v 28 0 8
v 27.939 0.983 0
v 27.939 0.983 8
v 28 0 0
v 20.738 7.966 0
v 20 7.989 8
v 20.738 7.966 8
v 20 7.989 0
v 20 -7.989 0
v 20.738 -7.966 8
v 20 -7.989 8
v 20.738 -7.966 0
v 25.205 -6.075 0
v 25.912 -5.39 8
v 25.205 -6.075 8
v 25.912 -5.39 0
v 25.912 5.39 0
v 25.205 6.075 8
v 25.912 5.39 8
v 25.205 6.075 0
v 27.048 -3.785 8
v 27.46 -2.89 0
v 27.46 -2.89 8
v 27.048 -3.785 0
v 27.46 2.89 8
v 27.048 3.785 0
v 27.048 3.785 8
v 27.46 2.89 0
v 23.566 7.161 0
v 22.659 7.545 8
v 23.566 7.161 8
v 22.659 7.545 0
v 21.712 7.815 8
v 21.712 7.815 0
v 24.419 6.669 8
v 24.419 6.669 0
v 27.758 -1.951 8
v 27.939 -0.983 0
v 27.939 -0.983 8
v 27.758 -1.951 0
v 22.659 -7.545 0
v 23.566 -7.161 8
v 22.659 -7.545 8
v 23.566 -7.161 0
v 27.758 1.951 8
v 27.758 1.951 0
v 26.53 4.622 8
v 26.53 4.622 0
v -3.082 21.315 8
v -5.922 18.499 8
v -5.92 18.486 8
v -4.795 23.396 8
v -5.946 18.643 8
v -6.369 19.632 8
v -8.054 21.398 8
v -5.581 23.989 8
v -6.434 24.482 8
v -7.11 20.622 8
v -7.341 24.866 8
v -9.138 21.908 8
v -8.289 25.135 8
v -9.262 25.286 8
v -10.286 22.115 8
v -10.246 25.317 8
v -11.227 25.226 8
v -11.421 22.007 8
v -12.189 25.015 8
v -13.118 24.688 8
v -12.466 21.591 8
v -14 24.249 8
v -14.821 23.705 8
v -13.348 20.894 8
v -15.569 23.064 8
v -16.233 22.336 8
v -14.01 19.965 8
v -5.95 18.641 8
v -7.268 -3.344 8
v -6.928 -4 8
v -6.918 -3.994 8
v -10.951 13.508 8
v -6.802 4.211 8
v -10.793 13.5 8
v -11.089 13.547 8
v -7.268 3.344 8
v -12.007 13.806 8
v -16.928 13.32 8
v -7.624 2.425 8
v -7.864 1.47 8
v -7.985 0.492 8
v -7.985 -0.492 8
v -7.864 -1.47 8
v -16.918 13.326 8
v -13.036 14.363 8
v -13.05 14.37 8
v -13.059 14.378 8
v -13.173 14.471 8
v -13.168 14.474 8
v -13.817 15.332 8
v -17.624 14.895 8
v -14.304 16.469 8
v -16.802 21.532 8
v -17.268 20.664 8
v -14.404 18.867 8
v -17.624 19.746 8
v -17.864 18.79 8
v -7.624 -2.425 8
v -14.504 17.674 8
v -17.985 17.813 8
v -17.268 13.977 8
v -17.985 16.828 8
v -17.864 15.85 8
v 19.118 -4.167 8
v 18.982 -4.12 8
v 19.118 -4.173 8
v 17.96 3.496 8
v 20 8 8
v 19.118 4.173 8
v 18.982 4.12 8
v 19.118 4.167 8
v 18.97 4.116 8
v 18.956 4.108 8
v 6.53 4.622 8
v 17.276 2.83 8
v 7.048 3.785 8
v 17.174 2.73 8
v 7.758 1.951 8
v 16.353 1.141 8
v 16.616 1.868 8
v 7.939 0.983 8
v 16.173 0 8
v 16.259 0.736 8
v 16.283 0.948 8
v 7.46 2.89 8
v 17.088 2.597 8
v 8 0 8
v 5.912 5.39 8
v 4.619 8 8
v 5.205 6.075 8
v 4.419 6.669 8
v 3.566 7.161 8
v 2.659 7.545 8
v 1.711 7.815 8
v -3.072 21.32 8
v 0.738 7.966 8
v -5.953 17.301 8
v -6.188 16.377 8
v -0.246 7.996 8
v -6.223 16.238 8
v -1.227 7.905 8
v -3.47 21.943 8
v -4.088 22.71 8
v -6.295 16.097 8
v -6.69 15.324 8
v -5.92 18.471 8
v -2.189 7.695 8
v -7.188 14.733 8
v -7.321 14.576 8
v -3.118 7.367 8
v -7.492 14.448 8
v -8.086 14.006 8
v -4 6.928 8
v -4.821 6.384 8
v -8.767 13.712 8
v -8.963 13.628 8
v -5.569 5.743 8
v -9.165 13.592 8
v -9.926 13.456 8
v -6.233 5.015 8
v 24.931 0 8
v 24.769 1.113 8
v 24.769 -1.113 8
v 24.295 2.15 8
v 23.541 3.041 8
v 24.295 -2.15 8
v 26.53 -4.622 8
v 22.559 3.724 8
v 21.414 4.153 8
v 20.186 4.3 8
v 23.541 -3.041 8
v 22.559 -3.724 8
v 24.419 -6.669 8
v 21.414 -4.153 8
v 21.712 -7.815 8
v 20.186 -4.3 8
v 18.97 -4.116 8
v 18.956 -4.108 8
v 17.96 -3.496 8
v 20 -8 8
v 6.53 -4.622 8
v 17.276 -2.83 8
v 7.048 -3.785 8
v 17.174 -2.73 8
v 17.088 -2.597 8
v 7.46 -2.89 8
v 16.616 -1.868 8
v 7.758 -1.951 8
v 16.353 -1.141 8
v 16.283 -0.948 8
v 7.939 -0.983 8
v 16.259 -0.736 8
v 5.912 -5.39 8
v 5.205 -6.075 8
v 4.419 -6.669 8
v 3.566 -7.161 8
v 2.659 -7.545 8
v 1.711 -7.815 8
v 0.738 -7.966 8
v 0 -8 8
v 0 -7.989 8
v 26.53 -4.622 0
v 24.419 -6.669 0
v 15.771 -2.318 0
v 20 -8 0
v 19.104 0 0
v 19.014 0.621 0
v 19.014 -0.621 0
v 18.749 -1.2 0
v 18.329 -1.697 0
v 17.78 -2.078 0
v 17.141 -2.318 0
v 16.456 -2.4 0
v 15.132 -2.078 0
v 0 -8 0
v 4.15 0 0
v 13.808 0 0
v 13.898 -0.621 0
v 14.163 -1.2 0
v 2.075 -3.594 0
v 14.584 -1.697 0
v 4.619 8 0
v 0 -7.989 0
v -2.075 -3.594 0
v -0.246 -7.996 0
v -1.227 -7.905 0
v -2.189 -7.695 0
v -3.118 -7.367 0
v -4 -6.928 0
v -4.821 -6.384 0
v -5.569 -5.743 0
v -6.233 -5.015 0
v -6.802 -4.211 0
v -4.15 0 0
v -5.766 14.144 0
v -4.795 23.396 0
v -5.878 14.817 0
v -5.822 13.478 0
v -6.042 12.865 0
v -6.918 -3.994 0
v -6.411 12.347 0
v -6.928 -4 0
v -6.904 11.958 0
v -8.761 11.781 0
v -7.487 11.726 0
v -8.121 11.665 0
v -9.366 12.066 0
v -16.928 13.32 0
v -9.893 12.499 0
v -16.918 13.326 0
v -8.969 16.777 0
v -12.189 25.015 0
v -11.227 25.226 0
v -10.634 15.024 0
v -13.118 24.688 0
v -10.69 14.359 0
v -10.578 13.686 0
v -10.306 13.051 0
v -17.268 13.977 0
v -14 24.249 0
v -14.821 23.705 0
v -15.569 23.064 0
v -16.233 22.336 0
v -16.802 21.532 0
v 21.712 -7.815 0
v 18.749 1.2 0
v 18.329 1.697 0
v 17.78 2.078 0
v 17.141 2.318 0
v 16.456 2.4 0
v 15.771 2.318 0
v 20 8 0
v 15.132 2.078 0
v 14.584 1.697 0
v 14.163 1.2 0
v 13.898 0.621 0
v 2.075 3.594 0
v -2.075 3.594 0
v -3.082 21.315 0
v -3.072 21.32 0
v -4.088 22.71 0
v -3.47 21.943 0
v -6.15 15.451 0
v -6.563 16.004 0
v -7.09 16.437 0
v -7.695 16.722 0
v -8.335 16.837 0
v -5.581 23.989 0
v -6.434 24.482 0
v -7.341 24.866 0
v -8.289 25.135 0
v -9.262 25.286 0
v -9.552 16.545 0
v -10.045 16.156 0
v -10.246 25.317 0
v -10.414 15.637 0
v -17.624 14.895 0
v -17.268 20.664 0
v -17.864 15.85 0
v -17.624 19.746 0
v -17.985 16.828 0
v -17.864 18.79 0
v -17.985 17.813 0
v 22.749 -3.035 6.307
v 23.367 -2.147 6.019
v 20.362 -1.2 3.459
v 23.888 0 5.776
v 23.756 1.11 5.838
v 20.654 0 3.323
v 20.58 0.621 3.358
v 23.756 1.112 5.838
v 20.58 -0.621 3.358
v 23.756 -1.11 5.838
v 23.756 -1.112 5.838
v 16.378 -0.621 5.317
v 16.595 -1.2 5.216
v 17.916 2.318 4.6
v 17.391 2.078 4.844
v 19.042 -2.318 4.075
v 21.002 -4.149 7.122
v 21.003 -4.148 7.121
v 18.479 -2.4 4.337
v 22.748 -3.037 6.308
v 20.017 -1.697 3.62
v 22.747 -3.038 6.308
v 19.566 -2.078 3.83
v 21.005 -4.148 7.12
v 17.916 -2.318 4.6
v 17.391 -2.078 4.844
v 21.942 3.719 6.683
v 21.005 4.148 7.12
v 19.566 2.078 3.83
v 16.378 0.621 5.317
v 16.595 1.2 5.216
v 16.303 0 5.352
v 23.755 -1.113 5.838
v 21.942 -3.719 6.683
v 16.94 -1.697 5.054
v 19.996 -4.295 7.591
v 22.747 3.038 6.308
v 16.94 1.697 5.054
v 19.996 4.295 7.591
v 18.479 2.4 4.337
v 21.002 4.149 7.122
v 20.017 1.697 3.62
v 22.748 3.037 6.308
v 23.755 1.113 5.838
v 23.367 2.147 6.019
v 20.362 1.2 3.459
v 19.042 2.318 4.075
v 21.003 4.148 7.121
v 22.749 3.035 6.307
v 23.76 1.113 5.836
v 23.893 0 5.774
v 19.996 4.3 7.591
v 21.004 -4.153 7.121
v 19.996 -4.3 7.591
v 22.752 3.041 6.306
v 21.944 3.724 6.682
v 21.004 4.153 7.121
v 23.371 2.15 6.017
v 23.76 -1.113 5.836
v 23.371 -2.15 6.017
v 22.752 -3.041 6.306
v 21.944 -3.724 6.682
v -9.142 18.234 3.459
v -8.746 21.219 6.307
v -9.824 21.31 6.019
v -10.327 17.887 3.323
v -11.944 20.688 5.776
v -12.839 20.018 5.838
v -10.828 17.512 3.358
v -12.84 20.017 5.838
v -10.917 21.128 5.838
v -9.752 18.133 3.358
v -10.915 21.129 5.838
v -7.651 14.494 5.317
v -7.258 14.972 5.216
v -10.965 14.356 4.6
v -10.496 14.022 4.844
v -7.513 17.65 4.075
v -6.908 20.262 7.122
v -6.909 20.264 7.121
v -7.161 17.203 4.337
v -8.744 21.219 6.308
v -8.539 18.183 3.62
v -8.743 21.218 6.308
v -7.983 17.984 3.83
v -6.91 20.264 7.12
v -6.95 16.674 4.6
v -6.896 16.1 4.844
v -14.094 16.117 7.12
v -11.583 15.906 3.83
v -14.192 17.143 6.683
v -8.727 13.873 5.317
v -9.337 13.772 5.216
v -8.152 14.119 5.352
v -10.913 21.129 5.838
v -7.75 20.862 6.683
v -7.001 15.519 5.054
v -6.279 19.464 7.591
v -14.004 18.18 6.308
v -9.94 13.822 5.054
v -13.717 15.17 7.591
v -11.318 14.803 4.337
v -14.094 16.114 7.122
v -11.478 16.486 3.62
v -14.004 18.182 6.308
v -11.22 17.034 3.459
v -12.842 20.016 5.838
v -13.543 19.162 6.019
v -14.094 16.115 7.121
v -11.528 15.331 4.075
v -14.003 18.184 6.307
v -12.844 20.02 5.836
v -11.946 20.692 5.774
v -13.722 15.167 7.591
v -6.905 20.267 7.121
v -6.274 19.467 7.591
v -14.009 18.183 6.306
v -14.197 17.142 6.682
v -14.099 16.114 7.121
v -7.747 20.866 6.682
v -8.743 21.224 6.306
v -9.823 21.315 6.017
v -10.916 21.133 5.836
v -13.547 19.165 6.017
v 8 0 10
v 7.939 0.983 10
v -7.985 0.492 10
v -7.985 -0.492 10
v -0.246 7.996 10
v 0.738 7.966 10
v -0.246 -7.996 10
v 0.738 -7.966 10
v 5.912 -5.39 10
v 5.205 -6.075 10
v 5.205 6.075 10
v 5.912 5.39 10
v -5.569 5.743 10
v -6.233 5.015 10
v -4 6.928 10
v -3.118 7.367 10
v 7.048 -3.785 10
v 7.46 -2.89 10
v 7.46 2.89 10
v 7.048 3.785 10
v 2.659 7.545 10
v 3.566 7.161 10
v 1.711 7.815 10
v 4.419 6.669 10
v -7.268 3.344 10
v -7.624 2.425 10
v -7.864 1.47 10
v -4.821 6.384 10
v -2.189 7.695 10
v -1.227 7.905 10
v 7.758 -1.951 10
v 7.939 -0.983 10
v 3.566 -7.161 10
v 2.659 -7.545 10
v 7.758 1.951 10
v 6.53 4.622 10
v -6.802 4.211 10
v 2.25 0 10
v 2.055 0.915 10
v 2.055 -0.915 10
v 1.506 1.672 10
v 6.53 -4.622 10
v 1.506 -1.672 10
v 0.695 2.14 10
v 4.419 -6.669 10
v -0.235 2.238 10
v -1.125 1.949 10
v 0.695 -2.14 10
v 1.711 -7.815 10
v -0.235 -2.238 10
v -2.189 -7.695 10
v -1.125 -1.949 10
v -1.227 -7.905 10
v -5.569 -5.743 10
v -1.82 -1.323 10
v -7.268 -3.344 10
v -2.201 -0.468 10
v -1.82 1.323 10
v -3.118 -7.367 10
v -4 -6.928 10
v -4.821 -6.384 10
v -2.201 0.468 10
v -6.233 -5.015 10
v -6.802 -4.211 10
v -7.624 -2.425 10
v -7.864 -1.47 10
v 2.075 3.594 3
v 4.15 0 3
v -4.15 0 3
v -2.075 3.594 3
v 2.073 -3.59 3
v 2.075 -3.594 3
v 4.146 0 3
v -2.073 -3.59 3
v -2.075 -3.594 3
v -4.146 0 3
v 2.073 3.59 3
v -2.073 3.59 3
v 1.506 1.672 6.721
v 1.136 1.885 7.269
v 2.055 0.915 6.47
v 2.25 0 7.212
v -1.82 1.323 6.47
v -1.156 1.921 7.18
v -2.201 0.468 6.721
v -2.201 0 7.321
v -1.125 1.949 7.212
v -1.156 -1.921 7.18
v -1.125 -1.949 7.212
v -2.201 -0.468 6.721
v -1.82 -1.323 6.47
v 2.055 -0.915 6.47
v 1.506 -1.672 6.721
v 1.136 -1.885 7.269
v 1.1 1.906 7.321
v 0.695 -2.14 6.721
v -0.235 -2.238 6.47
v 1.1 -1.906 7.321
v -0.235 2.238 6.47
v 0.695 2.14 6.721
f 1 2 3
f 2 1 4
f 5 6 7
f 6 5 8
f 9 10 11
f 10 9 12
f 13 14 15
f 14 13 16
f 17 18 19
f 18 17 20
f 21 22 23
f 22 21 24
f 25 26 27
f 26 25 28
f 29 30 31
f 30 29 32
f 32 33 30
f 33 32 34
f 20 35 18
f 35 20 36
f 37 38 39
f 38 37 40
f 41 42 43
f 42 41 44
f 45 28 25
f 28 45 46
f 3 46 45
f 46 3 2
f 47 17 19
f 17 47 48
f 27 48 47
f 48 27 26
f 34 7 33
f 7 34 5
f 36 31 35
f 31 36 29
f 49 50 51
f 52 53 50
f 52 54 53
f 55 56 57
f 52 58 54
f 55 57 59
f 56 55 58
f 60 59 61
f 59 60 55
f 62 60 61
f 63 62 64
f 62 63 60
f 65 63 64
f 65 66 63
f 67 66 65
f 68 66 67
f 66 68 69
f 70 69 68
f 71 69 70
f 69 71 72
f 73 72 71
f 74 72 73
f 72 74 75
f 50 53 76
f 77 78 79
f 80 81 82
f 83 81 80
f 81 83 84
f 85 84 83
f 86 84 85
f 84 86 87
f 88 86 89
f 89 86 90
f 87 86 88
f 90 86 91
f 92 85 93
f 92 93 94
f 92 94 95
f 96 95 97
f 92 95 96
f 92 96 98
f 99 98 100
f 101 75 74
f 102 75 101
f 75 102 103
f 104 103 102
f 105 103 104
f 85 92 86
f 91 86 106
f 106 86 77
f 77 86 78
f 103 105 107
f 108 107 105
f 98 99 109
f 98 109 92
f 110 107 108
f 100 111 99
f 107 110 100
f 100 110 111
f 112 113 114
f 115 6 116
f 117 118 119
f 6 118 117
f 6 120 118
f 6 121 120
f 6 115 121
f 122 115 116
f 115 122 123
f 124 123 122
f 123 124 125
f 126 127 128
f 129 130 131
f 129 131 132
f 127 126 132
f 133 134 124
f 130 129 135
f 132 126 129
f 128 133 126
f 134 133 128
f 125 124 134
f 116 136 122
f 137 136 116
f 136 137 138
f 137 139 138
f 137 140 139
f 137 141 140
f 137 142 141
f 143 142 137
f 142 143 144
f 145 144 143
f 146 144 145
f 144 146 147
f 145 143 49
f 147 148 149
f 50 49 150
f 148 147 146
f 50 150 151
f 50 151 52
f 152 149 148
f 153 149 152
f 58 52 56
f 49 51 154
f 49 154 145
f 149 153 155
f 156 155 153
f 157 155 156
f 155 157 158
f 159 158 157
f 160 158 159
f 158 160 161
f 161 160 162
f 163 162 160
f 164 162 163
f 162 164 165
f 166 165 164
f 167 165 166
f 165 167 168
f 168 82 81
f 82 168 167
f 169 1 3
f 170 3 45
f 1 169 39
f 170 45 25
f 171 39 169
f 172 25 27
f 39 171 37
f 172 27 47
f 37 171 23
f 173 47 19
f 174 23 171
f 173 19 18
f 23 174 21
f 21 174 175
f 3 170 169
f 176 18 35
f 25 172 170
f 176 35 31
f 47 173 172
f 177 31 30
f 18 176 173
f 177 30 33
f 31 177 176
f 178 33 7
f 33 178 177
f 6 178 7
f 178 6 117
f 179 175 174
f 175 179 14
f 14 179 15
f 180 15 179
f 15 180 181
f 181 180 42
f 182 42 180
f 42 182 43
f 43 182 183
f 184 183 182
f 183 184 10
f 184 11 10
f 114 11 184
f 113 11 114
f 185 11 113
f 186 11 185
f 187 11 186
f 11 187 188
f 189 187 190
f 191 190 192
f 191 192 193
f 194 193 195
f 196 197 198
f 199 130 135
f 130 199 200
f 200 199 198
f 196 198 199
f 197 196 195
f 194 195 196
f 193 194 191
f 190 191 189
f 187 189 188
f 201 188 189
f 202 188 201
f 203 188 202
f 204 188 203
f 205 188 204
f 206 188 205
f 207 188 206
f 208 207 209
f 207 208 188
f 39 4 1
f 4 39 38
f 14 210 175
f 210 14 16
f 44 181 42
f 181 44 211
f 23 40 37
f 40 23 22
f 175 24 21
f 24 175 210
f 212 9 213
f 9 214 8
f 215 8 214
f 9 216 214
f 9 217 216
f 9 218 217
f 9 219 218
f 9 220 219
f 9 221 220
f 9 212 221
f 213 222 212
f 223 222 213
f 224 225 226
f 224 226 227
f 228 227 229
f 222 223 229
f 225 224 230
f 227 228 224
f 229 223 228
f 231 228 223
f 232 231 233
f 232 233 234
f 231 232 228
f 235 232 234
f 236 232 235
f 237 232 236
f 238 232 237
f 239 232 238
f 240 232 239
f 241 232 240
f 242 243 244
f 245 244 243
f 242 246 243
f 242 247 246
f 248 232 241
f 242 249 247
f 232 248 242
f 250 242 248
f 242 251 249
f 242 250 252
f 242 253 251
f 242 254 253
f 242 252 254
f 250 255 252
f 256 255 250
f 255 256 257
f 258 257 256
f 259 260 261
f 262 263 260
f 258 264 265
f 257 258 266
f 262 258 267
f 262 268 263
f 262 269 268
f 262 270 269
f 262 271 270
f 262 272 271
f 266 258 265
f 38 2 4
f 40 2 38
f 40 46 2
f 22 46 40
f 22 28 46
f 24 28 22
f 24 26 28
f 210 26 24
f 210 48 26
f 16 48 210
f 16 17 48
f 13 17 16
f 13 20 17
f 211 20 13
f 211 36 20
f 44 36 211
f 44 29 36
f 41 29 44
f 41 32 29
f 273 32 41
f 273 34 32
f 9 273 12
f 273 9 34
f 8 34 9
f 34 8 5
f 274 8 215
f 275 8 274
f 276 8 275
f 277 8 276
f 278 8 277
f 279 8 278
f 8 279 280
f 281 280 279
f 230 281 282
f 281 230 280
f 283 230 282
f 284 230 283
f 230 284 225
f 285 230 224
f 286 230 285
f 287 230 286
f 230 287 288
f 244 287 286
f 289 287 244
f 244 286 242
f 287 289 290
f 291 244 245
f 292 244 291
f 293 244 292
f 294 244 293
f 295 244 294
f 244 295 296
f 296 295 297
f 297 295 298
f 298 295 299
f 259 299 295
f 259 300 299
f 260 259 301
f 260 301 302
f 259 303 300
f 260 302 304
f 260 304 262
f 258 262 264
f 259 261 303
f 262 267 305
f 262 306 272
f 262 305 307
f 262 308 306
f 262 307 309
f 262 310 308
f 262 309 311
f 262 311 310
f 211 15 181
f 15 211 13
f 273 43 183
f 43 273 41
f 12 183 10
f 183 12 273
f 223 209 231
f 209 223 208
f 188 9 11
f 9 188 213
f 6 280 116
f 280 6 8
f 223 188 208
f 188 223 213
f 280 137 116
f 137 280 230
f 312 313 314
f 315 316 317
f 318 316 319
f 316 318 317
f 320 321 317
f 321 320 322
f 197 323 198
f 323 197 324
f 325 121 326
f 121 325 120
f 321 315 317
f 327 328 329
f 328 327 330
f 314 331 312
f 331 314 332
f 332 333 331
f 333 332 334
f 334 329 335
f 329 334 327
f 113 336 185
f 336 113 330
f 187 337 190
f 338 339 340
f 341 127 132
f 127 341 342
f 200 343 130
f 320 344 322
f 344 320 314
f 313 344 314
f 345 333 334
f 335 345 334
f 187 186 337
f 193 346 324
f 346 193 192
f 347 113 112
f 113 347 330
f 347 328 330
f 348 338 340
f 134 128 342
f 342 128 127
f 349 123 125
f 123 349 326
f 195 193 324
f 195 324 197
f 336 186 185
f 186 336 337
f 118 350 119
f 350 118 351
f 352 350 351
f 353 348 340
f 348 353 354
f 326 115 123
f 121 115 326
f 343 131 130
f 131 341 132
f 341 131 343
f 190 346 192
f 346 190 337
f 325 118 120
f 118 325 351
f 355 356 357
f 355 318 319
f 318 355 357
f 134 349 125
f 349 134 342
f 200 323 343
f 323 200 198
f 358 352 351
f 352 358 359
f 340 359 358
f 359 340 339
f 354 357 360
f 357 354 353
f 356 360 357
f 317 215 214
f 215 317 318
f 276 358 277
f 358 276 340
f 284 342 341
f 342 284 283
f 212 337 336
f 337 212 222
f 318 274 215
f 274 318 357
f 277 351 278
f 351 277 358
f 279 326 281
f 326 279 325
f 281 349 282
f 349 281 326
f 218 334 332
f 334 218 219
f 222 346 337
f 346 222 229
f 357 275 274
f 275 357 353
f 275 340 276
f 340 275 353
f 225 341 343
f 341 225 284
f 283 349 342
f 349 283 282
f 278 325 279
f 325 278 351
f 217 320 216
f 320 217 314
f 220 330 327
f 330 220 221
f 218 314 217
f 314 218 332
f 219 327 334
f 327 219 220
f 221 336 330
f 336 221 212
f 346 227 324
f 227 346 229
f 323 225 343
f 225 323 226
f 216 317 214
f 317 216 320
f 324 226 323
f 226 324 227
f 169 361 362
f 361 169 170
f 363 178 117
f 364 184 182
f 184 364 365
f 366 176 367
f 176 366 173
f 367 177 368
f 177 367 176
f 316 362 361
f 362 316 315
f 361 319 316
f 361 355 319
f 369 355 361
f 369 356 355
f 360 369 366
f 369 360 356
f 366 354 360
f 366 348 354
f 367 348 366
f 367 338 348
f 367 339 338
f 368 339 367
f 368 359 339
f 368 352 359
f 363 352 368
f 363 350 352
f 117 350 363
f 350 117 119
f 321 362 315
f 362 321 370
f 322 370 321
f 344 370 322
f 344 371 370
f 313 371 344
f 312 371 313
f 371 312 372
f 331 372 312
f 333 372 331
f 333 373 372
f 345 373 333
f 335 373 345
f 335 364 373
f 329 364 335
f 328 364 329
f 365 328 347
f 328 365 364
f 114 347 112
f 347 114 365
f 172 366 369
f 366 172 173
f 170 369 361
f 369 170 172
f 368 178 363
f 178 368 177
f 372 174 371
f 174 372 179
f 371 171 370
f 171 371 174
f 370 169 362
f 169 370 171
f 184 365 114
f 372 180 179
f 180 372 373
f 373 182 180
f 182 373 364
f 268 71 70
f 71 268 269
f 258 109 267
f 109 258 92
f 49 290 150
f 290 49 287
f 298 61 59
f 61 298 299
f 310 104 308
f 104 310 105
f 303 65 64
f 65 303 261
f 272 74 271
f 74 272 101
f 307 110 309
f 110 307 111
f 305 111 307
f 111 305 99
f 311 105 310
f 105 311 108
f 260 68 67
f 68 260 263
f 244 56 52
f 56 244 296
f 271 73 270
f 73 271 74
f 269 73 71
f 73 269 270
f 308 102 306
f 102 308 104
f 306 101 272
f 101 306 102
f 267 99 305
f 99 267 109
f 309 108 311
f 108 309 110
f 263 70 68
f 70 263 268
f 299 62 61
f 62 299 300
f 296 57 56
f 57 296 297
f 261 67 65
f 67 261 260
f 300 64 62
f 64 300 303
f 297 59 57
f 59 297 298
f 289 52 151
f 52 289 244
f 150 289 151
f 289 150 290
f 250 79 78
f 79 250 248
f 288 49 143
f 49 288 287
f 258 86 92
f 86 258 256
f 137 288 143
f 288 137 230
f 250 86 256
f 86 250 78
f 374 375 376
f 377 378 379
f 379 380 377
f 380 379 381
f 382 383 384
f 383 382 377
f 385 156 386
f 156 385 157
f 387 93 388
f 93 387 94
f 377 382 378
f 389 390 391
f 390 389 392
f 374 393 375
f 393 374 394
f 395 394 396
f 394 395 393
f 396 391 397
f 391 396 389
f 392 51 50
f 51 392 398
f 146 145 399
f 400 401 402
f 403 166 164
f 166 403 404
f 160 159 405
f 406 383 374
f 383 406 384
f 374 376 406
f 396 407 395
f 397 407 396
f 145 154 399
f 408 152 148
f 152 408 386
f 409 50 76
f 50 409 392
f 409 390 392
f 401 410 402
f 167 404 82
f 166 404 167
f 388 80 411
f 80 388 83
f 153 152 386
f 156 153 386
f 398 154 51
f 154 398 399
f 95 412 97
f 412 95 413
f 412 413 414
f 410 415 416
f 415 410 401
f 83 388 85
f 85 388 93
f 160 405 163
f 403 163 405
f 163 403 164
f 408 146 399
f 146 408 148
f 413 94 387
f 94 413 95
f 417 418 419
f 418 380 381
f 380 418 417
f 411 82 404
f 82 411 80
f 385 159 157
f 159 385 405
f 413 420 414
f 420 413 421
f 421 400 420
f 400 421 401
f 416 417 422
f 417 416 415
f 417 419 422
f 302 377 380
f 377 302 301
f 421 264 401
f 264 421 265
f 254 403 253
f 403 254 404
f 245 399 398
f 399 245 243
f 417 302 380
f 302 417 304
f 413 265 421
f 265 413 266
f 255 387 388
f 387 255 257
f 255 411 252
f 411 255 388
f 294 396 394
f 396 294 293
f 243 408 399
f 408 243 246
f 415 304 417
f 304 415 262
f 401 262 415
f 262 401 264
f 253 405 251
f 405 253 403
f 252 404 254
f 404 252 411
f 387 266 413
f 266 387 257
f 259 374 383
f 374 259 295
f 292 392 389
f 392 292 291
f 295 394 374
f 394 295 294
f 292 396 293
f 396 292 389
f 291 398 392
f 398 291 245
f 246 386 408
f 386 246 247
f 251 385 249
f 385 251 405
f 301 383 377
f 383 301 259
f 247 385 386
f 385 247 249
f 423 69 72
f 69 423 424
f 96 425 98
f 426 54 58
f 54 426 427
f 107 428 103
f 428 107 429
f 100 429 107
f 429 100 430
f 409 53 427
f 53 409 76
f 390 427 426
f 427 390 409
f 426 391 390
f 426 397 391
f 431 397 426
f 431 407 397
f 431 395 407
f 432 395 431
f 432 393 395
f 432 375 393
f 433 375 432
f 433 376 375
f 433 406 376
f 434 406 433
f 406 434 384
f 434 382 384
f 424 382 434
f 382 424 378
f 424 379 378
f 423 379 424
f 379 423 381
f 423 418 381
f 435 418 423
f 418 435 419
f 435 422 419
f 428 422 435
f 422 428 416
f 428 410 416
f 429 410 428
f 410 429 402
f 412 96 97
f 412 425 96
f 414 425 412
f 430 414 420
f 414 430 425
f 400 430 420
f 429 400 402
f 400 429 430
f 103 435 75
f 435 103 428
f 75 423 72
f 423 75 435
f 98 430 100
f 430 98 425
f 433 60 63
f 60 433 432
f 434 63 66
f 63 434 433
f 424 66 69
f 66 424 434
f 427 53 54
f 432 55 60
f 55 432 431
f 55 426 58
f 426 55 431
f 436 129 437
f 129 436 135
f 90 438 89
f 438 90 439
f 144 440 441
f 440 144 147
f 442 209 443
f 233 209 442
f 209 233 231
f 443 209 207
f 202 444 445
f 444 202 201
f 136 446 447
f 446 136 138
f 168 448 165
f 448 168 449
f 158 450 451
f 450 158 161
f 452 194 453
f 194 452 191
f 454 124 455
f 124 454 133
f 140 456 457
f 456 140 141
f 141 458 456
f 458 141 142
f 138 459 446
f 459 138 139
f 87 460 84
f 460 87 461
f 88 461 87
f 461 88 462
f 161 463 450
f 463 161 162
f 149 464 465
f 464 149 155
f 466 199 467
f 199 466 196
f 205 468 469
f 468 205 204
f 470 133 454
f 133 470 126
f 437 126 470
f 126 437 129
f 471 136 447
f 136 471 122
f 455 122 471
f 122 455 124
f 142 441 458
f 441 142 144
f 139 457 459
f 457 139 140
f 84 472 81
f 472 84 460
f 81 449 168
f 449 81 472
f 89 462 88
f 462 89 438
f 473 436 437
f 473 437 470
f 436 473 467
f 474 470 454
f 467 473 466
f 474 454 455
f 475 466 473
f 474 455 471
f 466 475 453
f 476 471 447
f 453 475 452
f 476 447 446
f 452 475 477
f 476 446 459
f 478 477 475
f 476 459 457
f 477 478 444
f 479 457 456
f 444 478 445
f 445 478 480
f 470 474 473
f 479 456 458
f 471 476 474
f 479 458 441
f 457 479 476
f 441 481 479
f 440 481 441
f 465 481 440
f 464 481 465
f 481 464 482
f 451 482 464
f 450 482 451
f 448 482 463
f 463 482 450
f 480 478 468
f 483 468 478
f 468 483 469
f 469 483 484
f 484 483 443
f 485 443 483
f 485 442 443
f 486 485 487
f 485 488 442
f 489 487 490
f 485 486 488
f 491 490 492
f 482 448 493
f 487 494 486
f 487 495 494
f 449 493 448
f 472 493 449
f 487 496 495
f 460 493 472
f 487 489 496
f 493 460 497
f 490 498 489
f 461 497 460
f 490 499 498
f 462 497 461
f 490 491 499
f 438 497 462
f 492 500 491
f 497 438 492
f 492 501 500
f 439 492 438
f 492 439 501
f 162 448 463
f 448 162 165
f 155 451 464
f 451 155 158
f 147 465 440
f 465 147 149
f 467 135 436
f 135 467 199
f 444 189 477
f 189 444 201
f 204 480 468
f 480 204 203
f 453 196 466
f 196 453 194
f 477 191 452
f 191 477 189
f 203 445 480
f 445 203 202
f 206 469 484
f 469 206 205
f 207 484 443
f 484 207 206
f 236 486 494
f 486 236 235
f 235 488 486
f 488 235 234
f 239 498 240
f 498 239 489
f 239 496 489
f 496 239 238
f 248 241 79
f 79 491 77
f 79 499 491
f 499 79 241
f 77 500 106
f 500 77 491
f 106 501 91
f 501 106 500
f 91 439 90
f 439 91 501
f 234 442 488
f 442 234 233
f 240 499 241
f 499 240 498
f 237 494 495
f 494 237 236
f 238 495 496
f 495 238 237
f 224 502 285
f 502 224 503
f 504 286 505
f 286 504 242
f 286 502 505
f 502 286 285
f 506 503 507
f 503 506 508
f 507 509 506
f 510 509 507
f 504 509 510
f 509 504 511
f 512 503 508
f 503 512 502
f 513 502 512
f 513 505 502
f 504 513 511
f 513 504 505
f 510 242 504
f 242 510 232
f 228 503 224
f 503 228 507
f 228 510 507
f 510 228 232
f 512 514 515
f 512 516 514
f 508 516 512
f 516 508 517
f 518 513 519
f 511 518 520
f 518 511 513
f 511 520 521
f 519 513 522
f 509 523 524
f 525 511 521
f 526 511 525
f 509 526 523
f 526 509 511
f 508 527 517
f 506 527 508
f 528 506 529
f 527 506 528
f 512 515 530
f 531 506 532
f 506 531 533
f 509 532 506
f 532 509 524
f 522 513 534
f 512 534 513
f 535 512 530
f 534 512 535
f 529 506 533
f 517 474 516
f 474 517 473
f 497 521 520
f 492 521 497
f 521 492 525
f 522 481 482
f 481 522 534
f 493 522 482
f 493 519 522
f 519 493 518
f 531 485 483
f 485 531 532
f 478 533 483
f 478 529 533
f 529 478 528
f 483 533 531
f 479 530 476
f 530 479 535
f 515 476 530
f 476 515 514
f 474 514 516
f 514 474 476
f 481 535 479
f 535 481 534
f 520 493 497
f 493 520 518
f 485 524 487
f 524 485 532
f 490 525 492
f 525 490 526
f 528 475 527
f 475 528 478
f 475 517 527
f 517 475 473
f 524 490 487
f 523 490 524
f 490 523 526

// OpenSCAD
num8slot=4.8;
ep=0.01;

foot_t=8;
shaft_t=10;
foot_l=20;
foot_w=16;
$fa=1;
$fs=1;

m4_slot=4.5;
m4_nut_h=3;
m4_nut_d=8.3;


module num8counter()
//countersink shape
{
    hh=3.6;
    rr=8.6/2;
    translate([0,0,-hh])
    {
        cylinder(r1=num8slot/2,r2=rr,h=hh,$fn=24);
        translate([0,0,-foot_t])cylinder(r1=num8slot/2,r2=num8slot/2,h=hh+foot_t,$fn=24);
        translate([0,0,hh-ep])cylinder(r=rr,h=foot_t,$fn=24);
    }
}

//num8counter();

module foot()
{
    difference()
    {
        union()
        {
            //roundy bit
            translate([foot_l,0,foot_t/2])cylinder(r=foot_w/2,h=foot_t,center=true);
            //squarey bit
            translate([foot_l/2,0,foot_t/2])cube([foot_l,foot_w,foot_t],center=true);
        }
        translate([0,0,(foot_t-3.6)-.8])translate([foot_l,0,foot_t/2])rotate([0,25,0])num8counter();
    }
}
module solids()
{

    foot();
    rotate([0,0,120])foot();
    translate([0,0,shaft_t/2])cylinder(r=foot_w/2,h=shaft_t,center=true);
}
difference()
{
    solids();
    cylinder(r=m4_nut_d/2,h=m4_nut_h*2,center=true,$fn=6);
    translate([0,0,1.5+m4_nut_h*2-ep])cylinder(r1=m4_nut_d/2,r2=.1,h=m4_nut_h*2+3,center=true,$fn=6);
    translate([0,0,ep])cylinder(r=m4_slot/2,h=shaft_t*2,center=true);
}
